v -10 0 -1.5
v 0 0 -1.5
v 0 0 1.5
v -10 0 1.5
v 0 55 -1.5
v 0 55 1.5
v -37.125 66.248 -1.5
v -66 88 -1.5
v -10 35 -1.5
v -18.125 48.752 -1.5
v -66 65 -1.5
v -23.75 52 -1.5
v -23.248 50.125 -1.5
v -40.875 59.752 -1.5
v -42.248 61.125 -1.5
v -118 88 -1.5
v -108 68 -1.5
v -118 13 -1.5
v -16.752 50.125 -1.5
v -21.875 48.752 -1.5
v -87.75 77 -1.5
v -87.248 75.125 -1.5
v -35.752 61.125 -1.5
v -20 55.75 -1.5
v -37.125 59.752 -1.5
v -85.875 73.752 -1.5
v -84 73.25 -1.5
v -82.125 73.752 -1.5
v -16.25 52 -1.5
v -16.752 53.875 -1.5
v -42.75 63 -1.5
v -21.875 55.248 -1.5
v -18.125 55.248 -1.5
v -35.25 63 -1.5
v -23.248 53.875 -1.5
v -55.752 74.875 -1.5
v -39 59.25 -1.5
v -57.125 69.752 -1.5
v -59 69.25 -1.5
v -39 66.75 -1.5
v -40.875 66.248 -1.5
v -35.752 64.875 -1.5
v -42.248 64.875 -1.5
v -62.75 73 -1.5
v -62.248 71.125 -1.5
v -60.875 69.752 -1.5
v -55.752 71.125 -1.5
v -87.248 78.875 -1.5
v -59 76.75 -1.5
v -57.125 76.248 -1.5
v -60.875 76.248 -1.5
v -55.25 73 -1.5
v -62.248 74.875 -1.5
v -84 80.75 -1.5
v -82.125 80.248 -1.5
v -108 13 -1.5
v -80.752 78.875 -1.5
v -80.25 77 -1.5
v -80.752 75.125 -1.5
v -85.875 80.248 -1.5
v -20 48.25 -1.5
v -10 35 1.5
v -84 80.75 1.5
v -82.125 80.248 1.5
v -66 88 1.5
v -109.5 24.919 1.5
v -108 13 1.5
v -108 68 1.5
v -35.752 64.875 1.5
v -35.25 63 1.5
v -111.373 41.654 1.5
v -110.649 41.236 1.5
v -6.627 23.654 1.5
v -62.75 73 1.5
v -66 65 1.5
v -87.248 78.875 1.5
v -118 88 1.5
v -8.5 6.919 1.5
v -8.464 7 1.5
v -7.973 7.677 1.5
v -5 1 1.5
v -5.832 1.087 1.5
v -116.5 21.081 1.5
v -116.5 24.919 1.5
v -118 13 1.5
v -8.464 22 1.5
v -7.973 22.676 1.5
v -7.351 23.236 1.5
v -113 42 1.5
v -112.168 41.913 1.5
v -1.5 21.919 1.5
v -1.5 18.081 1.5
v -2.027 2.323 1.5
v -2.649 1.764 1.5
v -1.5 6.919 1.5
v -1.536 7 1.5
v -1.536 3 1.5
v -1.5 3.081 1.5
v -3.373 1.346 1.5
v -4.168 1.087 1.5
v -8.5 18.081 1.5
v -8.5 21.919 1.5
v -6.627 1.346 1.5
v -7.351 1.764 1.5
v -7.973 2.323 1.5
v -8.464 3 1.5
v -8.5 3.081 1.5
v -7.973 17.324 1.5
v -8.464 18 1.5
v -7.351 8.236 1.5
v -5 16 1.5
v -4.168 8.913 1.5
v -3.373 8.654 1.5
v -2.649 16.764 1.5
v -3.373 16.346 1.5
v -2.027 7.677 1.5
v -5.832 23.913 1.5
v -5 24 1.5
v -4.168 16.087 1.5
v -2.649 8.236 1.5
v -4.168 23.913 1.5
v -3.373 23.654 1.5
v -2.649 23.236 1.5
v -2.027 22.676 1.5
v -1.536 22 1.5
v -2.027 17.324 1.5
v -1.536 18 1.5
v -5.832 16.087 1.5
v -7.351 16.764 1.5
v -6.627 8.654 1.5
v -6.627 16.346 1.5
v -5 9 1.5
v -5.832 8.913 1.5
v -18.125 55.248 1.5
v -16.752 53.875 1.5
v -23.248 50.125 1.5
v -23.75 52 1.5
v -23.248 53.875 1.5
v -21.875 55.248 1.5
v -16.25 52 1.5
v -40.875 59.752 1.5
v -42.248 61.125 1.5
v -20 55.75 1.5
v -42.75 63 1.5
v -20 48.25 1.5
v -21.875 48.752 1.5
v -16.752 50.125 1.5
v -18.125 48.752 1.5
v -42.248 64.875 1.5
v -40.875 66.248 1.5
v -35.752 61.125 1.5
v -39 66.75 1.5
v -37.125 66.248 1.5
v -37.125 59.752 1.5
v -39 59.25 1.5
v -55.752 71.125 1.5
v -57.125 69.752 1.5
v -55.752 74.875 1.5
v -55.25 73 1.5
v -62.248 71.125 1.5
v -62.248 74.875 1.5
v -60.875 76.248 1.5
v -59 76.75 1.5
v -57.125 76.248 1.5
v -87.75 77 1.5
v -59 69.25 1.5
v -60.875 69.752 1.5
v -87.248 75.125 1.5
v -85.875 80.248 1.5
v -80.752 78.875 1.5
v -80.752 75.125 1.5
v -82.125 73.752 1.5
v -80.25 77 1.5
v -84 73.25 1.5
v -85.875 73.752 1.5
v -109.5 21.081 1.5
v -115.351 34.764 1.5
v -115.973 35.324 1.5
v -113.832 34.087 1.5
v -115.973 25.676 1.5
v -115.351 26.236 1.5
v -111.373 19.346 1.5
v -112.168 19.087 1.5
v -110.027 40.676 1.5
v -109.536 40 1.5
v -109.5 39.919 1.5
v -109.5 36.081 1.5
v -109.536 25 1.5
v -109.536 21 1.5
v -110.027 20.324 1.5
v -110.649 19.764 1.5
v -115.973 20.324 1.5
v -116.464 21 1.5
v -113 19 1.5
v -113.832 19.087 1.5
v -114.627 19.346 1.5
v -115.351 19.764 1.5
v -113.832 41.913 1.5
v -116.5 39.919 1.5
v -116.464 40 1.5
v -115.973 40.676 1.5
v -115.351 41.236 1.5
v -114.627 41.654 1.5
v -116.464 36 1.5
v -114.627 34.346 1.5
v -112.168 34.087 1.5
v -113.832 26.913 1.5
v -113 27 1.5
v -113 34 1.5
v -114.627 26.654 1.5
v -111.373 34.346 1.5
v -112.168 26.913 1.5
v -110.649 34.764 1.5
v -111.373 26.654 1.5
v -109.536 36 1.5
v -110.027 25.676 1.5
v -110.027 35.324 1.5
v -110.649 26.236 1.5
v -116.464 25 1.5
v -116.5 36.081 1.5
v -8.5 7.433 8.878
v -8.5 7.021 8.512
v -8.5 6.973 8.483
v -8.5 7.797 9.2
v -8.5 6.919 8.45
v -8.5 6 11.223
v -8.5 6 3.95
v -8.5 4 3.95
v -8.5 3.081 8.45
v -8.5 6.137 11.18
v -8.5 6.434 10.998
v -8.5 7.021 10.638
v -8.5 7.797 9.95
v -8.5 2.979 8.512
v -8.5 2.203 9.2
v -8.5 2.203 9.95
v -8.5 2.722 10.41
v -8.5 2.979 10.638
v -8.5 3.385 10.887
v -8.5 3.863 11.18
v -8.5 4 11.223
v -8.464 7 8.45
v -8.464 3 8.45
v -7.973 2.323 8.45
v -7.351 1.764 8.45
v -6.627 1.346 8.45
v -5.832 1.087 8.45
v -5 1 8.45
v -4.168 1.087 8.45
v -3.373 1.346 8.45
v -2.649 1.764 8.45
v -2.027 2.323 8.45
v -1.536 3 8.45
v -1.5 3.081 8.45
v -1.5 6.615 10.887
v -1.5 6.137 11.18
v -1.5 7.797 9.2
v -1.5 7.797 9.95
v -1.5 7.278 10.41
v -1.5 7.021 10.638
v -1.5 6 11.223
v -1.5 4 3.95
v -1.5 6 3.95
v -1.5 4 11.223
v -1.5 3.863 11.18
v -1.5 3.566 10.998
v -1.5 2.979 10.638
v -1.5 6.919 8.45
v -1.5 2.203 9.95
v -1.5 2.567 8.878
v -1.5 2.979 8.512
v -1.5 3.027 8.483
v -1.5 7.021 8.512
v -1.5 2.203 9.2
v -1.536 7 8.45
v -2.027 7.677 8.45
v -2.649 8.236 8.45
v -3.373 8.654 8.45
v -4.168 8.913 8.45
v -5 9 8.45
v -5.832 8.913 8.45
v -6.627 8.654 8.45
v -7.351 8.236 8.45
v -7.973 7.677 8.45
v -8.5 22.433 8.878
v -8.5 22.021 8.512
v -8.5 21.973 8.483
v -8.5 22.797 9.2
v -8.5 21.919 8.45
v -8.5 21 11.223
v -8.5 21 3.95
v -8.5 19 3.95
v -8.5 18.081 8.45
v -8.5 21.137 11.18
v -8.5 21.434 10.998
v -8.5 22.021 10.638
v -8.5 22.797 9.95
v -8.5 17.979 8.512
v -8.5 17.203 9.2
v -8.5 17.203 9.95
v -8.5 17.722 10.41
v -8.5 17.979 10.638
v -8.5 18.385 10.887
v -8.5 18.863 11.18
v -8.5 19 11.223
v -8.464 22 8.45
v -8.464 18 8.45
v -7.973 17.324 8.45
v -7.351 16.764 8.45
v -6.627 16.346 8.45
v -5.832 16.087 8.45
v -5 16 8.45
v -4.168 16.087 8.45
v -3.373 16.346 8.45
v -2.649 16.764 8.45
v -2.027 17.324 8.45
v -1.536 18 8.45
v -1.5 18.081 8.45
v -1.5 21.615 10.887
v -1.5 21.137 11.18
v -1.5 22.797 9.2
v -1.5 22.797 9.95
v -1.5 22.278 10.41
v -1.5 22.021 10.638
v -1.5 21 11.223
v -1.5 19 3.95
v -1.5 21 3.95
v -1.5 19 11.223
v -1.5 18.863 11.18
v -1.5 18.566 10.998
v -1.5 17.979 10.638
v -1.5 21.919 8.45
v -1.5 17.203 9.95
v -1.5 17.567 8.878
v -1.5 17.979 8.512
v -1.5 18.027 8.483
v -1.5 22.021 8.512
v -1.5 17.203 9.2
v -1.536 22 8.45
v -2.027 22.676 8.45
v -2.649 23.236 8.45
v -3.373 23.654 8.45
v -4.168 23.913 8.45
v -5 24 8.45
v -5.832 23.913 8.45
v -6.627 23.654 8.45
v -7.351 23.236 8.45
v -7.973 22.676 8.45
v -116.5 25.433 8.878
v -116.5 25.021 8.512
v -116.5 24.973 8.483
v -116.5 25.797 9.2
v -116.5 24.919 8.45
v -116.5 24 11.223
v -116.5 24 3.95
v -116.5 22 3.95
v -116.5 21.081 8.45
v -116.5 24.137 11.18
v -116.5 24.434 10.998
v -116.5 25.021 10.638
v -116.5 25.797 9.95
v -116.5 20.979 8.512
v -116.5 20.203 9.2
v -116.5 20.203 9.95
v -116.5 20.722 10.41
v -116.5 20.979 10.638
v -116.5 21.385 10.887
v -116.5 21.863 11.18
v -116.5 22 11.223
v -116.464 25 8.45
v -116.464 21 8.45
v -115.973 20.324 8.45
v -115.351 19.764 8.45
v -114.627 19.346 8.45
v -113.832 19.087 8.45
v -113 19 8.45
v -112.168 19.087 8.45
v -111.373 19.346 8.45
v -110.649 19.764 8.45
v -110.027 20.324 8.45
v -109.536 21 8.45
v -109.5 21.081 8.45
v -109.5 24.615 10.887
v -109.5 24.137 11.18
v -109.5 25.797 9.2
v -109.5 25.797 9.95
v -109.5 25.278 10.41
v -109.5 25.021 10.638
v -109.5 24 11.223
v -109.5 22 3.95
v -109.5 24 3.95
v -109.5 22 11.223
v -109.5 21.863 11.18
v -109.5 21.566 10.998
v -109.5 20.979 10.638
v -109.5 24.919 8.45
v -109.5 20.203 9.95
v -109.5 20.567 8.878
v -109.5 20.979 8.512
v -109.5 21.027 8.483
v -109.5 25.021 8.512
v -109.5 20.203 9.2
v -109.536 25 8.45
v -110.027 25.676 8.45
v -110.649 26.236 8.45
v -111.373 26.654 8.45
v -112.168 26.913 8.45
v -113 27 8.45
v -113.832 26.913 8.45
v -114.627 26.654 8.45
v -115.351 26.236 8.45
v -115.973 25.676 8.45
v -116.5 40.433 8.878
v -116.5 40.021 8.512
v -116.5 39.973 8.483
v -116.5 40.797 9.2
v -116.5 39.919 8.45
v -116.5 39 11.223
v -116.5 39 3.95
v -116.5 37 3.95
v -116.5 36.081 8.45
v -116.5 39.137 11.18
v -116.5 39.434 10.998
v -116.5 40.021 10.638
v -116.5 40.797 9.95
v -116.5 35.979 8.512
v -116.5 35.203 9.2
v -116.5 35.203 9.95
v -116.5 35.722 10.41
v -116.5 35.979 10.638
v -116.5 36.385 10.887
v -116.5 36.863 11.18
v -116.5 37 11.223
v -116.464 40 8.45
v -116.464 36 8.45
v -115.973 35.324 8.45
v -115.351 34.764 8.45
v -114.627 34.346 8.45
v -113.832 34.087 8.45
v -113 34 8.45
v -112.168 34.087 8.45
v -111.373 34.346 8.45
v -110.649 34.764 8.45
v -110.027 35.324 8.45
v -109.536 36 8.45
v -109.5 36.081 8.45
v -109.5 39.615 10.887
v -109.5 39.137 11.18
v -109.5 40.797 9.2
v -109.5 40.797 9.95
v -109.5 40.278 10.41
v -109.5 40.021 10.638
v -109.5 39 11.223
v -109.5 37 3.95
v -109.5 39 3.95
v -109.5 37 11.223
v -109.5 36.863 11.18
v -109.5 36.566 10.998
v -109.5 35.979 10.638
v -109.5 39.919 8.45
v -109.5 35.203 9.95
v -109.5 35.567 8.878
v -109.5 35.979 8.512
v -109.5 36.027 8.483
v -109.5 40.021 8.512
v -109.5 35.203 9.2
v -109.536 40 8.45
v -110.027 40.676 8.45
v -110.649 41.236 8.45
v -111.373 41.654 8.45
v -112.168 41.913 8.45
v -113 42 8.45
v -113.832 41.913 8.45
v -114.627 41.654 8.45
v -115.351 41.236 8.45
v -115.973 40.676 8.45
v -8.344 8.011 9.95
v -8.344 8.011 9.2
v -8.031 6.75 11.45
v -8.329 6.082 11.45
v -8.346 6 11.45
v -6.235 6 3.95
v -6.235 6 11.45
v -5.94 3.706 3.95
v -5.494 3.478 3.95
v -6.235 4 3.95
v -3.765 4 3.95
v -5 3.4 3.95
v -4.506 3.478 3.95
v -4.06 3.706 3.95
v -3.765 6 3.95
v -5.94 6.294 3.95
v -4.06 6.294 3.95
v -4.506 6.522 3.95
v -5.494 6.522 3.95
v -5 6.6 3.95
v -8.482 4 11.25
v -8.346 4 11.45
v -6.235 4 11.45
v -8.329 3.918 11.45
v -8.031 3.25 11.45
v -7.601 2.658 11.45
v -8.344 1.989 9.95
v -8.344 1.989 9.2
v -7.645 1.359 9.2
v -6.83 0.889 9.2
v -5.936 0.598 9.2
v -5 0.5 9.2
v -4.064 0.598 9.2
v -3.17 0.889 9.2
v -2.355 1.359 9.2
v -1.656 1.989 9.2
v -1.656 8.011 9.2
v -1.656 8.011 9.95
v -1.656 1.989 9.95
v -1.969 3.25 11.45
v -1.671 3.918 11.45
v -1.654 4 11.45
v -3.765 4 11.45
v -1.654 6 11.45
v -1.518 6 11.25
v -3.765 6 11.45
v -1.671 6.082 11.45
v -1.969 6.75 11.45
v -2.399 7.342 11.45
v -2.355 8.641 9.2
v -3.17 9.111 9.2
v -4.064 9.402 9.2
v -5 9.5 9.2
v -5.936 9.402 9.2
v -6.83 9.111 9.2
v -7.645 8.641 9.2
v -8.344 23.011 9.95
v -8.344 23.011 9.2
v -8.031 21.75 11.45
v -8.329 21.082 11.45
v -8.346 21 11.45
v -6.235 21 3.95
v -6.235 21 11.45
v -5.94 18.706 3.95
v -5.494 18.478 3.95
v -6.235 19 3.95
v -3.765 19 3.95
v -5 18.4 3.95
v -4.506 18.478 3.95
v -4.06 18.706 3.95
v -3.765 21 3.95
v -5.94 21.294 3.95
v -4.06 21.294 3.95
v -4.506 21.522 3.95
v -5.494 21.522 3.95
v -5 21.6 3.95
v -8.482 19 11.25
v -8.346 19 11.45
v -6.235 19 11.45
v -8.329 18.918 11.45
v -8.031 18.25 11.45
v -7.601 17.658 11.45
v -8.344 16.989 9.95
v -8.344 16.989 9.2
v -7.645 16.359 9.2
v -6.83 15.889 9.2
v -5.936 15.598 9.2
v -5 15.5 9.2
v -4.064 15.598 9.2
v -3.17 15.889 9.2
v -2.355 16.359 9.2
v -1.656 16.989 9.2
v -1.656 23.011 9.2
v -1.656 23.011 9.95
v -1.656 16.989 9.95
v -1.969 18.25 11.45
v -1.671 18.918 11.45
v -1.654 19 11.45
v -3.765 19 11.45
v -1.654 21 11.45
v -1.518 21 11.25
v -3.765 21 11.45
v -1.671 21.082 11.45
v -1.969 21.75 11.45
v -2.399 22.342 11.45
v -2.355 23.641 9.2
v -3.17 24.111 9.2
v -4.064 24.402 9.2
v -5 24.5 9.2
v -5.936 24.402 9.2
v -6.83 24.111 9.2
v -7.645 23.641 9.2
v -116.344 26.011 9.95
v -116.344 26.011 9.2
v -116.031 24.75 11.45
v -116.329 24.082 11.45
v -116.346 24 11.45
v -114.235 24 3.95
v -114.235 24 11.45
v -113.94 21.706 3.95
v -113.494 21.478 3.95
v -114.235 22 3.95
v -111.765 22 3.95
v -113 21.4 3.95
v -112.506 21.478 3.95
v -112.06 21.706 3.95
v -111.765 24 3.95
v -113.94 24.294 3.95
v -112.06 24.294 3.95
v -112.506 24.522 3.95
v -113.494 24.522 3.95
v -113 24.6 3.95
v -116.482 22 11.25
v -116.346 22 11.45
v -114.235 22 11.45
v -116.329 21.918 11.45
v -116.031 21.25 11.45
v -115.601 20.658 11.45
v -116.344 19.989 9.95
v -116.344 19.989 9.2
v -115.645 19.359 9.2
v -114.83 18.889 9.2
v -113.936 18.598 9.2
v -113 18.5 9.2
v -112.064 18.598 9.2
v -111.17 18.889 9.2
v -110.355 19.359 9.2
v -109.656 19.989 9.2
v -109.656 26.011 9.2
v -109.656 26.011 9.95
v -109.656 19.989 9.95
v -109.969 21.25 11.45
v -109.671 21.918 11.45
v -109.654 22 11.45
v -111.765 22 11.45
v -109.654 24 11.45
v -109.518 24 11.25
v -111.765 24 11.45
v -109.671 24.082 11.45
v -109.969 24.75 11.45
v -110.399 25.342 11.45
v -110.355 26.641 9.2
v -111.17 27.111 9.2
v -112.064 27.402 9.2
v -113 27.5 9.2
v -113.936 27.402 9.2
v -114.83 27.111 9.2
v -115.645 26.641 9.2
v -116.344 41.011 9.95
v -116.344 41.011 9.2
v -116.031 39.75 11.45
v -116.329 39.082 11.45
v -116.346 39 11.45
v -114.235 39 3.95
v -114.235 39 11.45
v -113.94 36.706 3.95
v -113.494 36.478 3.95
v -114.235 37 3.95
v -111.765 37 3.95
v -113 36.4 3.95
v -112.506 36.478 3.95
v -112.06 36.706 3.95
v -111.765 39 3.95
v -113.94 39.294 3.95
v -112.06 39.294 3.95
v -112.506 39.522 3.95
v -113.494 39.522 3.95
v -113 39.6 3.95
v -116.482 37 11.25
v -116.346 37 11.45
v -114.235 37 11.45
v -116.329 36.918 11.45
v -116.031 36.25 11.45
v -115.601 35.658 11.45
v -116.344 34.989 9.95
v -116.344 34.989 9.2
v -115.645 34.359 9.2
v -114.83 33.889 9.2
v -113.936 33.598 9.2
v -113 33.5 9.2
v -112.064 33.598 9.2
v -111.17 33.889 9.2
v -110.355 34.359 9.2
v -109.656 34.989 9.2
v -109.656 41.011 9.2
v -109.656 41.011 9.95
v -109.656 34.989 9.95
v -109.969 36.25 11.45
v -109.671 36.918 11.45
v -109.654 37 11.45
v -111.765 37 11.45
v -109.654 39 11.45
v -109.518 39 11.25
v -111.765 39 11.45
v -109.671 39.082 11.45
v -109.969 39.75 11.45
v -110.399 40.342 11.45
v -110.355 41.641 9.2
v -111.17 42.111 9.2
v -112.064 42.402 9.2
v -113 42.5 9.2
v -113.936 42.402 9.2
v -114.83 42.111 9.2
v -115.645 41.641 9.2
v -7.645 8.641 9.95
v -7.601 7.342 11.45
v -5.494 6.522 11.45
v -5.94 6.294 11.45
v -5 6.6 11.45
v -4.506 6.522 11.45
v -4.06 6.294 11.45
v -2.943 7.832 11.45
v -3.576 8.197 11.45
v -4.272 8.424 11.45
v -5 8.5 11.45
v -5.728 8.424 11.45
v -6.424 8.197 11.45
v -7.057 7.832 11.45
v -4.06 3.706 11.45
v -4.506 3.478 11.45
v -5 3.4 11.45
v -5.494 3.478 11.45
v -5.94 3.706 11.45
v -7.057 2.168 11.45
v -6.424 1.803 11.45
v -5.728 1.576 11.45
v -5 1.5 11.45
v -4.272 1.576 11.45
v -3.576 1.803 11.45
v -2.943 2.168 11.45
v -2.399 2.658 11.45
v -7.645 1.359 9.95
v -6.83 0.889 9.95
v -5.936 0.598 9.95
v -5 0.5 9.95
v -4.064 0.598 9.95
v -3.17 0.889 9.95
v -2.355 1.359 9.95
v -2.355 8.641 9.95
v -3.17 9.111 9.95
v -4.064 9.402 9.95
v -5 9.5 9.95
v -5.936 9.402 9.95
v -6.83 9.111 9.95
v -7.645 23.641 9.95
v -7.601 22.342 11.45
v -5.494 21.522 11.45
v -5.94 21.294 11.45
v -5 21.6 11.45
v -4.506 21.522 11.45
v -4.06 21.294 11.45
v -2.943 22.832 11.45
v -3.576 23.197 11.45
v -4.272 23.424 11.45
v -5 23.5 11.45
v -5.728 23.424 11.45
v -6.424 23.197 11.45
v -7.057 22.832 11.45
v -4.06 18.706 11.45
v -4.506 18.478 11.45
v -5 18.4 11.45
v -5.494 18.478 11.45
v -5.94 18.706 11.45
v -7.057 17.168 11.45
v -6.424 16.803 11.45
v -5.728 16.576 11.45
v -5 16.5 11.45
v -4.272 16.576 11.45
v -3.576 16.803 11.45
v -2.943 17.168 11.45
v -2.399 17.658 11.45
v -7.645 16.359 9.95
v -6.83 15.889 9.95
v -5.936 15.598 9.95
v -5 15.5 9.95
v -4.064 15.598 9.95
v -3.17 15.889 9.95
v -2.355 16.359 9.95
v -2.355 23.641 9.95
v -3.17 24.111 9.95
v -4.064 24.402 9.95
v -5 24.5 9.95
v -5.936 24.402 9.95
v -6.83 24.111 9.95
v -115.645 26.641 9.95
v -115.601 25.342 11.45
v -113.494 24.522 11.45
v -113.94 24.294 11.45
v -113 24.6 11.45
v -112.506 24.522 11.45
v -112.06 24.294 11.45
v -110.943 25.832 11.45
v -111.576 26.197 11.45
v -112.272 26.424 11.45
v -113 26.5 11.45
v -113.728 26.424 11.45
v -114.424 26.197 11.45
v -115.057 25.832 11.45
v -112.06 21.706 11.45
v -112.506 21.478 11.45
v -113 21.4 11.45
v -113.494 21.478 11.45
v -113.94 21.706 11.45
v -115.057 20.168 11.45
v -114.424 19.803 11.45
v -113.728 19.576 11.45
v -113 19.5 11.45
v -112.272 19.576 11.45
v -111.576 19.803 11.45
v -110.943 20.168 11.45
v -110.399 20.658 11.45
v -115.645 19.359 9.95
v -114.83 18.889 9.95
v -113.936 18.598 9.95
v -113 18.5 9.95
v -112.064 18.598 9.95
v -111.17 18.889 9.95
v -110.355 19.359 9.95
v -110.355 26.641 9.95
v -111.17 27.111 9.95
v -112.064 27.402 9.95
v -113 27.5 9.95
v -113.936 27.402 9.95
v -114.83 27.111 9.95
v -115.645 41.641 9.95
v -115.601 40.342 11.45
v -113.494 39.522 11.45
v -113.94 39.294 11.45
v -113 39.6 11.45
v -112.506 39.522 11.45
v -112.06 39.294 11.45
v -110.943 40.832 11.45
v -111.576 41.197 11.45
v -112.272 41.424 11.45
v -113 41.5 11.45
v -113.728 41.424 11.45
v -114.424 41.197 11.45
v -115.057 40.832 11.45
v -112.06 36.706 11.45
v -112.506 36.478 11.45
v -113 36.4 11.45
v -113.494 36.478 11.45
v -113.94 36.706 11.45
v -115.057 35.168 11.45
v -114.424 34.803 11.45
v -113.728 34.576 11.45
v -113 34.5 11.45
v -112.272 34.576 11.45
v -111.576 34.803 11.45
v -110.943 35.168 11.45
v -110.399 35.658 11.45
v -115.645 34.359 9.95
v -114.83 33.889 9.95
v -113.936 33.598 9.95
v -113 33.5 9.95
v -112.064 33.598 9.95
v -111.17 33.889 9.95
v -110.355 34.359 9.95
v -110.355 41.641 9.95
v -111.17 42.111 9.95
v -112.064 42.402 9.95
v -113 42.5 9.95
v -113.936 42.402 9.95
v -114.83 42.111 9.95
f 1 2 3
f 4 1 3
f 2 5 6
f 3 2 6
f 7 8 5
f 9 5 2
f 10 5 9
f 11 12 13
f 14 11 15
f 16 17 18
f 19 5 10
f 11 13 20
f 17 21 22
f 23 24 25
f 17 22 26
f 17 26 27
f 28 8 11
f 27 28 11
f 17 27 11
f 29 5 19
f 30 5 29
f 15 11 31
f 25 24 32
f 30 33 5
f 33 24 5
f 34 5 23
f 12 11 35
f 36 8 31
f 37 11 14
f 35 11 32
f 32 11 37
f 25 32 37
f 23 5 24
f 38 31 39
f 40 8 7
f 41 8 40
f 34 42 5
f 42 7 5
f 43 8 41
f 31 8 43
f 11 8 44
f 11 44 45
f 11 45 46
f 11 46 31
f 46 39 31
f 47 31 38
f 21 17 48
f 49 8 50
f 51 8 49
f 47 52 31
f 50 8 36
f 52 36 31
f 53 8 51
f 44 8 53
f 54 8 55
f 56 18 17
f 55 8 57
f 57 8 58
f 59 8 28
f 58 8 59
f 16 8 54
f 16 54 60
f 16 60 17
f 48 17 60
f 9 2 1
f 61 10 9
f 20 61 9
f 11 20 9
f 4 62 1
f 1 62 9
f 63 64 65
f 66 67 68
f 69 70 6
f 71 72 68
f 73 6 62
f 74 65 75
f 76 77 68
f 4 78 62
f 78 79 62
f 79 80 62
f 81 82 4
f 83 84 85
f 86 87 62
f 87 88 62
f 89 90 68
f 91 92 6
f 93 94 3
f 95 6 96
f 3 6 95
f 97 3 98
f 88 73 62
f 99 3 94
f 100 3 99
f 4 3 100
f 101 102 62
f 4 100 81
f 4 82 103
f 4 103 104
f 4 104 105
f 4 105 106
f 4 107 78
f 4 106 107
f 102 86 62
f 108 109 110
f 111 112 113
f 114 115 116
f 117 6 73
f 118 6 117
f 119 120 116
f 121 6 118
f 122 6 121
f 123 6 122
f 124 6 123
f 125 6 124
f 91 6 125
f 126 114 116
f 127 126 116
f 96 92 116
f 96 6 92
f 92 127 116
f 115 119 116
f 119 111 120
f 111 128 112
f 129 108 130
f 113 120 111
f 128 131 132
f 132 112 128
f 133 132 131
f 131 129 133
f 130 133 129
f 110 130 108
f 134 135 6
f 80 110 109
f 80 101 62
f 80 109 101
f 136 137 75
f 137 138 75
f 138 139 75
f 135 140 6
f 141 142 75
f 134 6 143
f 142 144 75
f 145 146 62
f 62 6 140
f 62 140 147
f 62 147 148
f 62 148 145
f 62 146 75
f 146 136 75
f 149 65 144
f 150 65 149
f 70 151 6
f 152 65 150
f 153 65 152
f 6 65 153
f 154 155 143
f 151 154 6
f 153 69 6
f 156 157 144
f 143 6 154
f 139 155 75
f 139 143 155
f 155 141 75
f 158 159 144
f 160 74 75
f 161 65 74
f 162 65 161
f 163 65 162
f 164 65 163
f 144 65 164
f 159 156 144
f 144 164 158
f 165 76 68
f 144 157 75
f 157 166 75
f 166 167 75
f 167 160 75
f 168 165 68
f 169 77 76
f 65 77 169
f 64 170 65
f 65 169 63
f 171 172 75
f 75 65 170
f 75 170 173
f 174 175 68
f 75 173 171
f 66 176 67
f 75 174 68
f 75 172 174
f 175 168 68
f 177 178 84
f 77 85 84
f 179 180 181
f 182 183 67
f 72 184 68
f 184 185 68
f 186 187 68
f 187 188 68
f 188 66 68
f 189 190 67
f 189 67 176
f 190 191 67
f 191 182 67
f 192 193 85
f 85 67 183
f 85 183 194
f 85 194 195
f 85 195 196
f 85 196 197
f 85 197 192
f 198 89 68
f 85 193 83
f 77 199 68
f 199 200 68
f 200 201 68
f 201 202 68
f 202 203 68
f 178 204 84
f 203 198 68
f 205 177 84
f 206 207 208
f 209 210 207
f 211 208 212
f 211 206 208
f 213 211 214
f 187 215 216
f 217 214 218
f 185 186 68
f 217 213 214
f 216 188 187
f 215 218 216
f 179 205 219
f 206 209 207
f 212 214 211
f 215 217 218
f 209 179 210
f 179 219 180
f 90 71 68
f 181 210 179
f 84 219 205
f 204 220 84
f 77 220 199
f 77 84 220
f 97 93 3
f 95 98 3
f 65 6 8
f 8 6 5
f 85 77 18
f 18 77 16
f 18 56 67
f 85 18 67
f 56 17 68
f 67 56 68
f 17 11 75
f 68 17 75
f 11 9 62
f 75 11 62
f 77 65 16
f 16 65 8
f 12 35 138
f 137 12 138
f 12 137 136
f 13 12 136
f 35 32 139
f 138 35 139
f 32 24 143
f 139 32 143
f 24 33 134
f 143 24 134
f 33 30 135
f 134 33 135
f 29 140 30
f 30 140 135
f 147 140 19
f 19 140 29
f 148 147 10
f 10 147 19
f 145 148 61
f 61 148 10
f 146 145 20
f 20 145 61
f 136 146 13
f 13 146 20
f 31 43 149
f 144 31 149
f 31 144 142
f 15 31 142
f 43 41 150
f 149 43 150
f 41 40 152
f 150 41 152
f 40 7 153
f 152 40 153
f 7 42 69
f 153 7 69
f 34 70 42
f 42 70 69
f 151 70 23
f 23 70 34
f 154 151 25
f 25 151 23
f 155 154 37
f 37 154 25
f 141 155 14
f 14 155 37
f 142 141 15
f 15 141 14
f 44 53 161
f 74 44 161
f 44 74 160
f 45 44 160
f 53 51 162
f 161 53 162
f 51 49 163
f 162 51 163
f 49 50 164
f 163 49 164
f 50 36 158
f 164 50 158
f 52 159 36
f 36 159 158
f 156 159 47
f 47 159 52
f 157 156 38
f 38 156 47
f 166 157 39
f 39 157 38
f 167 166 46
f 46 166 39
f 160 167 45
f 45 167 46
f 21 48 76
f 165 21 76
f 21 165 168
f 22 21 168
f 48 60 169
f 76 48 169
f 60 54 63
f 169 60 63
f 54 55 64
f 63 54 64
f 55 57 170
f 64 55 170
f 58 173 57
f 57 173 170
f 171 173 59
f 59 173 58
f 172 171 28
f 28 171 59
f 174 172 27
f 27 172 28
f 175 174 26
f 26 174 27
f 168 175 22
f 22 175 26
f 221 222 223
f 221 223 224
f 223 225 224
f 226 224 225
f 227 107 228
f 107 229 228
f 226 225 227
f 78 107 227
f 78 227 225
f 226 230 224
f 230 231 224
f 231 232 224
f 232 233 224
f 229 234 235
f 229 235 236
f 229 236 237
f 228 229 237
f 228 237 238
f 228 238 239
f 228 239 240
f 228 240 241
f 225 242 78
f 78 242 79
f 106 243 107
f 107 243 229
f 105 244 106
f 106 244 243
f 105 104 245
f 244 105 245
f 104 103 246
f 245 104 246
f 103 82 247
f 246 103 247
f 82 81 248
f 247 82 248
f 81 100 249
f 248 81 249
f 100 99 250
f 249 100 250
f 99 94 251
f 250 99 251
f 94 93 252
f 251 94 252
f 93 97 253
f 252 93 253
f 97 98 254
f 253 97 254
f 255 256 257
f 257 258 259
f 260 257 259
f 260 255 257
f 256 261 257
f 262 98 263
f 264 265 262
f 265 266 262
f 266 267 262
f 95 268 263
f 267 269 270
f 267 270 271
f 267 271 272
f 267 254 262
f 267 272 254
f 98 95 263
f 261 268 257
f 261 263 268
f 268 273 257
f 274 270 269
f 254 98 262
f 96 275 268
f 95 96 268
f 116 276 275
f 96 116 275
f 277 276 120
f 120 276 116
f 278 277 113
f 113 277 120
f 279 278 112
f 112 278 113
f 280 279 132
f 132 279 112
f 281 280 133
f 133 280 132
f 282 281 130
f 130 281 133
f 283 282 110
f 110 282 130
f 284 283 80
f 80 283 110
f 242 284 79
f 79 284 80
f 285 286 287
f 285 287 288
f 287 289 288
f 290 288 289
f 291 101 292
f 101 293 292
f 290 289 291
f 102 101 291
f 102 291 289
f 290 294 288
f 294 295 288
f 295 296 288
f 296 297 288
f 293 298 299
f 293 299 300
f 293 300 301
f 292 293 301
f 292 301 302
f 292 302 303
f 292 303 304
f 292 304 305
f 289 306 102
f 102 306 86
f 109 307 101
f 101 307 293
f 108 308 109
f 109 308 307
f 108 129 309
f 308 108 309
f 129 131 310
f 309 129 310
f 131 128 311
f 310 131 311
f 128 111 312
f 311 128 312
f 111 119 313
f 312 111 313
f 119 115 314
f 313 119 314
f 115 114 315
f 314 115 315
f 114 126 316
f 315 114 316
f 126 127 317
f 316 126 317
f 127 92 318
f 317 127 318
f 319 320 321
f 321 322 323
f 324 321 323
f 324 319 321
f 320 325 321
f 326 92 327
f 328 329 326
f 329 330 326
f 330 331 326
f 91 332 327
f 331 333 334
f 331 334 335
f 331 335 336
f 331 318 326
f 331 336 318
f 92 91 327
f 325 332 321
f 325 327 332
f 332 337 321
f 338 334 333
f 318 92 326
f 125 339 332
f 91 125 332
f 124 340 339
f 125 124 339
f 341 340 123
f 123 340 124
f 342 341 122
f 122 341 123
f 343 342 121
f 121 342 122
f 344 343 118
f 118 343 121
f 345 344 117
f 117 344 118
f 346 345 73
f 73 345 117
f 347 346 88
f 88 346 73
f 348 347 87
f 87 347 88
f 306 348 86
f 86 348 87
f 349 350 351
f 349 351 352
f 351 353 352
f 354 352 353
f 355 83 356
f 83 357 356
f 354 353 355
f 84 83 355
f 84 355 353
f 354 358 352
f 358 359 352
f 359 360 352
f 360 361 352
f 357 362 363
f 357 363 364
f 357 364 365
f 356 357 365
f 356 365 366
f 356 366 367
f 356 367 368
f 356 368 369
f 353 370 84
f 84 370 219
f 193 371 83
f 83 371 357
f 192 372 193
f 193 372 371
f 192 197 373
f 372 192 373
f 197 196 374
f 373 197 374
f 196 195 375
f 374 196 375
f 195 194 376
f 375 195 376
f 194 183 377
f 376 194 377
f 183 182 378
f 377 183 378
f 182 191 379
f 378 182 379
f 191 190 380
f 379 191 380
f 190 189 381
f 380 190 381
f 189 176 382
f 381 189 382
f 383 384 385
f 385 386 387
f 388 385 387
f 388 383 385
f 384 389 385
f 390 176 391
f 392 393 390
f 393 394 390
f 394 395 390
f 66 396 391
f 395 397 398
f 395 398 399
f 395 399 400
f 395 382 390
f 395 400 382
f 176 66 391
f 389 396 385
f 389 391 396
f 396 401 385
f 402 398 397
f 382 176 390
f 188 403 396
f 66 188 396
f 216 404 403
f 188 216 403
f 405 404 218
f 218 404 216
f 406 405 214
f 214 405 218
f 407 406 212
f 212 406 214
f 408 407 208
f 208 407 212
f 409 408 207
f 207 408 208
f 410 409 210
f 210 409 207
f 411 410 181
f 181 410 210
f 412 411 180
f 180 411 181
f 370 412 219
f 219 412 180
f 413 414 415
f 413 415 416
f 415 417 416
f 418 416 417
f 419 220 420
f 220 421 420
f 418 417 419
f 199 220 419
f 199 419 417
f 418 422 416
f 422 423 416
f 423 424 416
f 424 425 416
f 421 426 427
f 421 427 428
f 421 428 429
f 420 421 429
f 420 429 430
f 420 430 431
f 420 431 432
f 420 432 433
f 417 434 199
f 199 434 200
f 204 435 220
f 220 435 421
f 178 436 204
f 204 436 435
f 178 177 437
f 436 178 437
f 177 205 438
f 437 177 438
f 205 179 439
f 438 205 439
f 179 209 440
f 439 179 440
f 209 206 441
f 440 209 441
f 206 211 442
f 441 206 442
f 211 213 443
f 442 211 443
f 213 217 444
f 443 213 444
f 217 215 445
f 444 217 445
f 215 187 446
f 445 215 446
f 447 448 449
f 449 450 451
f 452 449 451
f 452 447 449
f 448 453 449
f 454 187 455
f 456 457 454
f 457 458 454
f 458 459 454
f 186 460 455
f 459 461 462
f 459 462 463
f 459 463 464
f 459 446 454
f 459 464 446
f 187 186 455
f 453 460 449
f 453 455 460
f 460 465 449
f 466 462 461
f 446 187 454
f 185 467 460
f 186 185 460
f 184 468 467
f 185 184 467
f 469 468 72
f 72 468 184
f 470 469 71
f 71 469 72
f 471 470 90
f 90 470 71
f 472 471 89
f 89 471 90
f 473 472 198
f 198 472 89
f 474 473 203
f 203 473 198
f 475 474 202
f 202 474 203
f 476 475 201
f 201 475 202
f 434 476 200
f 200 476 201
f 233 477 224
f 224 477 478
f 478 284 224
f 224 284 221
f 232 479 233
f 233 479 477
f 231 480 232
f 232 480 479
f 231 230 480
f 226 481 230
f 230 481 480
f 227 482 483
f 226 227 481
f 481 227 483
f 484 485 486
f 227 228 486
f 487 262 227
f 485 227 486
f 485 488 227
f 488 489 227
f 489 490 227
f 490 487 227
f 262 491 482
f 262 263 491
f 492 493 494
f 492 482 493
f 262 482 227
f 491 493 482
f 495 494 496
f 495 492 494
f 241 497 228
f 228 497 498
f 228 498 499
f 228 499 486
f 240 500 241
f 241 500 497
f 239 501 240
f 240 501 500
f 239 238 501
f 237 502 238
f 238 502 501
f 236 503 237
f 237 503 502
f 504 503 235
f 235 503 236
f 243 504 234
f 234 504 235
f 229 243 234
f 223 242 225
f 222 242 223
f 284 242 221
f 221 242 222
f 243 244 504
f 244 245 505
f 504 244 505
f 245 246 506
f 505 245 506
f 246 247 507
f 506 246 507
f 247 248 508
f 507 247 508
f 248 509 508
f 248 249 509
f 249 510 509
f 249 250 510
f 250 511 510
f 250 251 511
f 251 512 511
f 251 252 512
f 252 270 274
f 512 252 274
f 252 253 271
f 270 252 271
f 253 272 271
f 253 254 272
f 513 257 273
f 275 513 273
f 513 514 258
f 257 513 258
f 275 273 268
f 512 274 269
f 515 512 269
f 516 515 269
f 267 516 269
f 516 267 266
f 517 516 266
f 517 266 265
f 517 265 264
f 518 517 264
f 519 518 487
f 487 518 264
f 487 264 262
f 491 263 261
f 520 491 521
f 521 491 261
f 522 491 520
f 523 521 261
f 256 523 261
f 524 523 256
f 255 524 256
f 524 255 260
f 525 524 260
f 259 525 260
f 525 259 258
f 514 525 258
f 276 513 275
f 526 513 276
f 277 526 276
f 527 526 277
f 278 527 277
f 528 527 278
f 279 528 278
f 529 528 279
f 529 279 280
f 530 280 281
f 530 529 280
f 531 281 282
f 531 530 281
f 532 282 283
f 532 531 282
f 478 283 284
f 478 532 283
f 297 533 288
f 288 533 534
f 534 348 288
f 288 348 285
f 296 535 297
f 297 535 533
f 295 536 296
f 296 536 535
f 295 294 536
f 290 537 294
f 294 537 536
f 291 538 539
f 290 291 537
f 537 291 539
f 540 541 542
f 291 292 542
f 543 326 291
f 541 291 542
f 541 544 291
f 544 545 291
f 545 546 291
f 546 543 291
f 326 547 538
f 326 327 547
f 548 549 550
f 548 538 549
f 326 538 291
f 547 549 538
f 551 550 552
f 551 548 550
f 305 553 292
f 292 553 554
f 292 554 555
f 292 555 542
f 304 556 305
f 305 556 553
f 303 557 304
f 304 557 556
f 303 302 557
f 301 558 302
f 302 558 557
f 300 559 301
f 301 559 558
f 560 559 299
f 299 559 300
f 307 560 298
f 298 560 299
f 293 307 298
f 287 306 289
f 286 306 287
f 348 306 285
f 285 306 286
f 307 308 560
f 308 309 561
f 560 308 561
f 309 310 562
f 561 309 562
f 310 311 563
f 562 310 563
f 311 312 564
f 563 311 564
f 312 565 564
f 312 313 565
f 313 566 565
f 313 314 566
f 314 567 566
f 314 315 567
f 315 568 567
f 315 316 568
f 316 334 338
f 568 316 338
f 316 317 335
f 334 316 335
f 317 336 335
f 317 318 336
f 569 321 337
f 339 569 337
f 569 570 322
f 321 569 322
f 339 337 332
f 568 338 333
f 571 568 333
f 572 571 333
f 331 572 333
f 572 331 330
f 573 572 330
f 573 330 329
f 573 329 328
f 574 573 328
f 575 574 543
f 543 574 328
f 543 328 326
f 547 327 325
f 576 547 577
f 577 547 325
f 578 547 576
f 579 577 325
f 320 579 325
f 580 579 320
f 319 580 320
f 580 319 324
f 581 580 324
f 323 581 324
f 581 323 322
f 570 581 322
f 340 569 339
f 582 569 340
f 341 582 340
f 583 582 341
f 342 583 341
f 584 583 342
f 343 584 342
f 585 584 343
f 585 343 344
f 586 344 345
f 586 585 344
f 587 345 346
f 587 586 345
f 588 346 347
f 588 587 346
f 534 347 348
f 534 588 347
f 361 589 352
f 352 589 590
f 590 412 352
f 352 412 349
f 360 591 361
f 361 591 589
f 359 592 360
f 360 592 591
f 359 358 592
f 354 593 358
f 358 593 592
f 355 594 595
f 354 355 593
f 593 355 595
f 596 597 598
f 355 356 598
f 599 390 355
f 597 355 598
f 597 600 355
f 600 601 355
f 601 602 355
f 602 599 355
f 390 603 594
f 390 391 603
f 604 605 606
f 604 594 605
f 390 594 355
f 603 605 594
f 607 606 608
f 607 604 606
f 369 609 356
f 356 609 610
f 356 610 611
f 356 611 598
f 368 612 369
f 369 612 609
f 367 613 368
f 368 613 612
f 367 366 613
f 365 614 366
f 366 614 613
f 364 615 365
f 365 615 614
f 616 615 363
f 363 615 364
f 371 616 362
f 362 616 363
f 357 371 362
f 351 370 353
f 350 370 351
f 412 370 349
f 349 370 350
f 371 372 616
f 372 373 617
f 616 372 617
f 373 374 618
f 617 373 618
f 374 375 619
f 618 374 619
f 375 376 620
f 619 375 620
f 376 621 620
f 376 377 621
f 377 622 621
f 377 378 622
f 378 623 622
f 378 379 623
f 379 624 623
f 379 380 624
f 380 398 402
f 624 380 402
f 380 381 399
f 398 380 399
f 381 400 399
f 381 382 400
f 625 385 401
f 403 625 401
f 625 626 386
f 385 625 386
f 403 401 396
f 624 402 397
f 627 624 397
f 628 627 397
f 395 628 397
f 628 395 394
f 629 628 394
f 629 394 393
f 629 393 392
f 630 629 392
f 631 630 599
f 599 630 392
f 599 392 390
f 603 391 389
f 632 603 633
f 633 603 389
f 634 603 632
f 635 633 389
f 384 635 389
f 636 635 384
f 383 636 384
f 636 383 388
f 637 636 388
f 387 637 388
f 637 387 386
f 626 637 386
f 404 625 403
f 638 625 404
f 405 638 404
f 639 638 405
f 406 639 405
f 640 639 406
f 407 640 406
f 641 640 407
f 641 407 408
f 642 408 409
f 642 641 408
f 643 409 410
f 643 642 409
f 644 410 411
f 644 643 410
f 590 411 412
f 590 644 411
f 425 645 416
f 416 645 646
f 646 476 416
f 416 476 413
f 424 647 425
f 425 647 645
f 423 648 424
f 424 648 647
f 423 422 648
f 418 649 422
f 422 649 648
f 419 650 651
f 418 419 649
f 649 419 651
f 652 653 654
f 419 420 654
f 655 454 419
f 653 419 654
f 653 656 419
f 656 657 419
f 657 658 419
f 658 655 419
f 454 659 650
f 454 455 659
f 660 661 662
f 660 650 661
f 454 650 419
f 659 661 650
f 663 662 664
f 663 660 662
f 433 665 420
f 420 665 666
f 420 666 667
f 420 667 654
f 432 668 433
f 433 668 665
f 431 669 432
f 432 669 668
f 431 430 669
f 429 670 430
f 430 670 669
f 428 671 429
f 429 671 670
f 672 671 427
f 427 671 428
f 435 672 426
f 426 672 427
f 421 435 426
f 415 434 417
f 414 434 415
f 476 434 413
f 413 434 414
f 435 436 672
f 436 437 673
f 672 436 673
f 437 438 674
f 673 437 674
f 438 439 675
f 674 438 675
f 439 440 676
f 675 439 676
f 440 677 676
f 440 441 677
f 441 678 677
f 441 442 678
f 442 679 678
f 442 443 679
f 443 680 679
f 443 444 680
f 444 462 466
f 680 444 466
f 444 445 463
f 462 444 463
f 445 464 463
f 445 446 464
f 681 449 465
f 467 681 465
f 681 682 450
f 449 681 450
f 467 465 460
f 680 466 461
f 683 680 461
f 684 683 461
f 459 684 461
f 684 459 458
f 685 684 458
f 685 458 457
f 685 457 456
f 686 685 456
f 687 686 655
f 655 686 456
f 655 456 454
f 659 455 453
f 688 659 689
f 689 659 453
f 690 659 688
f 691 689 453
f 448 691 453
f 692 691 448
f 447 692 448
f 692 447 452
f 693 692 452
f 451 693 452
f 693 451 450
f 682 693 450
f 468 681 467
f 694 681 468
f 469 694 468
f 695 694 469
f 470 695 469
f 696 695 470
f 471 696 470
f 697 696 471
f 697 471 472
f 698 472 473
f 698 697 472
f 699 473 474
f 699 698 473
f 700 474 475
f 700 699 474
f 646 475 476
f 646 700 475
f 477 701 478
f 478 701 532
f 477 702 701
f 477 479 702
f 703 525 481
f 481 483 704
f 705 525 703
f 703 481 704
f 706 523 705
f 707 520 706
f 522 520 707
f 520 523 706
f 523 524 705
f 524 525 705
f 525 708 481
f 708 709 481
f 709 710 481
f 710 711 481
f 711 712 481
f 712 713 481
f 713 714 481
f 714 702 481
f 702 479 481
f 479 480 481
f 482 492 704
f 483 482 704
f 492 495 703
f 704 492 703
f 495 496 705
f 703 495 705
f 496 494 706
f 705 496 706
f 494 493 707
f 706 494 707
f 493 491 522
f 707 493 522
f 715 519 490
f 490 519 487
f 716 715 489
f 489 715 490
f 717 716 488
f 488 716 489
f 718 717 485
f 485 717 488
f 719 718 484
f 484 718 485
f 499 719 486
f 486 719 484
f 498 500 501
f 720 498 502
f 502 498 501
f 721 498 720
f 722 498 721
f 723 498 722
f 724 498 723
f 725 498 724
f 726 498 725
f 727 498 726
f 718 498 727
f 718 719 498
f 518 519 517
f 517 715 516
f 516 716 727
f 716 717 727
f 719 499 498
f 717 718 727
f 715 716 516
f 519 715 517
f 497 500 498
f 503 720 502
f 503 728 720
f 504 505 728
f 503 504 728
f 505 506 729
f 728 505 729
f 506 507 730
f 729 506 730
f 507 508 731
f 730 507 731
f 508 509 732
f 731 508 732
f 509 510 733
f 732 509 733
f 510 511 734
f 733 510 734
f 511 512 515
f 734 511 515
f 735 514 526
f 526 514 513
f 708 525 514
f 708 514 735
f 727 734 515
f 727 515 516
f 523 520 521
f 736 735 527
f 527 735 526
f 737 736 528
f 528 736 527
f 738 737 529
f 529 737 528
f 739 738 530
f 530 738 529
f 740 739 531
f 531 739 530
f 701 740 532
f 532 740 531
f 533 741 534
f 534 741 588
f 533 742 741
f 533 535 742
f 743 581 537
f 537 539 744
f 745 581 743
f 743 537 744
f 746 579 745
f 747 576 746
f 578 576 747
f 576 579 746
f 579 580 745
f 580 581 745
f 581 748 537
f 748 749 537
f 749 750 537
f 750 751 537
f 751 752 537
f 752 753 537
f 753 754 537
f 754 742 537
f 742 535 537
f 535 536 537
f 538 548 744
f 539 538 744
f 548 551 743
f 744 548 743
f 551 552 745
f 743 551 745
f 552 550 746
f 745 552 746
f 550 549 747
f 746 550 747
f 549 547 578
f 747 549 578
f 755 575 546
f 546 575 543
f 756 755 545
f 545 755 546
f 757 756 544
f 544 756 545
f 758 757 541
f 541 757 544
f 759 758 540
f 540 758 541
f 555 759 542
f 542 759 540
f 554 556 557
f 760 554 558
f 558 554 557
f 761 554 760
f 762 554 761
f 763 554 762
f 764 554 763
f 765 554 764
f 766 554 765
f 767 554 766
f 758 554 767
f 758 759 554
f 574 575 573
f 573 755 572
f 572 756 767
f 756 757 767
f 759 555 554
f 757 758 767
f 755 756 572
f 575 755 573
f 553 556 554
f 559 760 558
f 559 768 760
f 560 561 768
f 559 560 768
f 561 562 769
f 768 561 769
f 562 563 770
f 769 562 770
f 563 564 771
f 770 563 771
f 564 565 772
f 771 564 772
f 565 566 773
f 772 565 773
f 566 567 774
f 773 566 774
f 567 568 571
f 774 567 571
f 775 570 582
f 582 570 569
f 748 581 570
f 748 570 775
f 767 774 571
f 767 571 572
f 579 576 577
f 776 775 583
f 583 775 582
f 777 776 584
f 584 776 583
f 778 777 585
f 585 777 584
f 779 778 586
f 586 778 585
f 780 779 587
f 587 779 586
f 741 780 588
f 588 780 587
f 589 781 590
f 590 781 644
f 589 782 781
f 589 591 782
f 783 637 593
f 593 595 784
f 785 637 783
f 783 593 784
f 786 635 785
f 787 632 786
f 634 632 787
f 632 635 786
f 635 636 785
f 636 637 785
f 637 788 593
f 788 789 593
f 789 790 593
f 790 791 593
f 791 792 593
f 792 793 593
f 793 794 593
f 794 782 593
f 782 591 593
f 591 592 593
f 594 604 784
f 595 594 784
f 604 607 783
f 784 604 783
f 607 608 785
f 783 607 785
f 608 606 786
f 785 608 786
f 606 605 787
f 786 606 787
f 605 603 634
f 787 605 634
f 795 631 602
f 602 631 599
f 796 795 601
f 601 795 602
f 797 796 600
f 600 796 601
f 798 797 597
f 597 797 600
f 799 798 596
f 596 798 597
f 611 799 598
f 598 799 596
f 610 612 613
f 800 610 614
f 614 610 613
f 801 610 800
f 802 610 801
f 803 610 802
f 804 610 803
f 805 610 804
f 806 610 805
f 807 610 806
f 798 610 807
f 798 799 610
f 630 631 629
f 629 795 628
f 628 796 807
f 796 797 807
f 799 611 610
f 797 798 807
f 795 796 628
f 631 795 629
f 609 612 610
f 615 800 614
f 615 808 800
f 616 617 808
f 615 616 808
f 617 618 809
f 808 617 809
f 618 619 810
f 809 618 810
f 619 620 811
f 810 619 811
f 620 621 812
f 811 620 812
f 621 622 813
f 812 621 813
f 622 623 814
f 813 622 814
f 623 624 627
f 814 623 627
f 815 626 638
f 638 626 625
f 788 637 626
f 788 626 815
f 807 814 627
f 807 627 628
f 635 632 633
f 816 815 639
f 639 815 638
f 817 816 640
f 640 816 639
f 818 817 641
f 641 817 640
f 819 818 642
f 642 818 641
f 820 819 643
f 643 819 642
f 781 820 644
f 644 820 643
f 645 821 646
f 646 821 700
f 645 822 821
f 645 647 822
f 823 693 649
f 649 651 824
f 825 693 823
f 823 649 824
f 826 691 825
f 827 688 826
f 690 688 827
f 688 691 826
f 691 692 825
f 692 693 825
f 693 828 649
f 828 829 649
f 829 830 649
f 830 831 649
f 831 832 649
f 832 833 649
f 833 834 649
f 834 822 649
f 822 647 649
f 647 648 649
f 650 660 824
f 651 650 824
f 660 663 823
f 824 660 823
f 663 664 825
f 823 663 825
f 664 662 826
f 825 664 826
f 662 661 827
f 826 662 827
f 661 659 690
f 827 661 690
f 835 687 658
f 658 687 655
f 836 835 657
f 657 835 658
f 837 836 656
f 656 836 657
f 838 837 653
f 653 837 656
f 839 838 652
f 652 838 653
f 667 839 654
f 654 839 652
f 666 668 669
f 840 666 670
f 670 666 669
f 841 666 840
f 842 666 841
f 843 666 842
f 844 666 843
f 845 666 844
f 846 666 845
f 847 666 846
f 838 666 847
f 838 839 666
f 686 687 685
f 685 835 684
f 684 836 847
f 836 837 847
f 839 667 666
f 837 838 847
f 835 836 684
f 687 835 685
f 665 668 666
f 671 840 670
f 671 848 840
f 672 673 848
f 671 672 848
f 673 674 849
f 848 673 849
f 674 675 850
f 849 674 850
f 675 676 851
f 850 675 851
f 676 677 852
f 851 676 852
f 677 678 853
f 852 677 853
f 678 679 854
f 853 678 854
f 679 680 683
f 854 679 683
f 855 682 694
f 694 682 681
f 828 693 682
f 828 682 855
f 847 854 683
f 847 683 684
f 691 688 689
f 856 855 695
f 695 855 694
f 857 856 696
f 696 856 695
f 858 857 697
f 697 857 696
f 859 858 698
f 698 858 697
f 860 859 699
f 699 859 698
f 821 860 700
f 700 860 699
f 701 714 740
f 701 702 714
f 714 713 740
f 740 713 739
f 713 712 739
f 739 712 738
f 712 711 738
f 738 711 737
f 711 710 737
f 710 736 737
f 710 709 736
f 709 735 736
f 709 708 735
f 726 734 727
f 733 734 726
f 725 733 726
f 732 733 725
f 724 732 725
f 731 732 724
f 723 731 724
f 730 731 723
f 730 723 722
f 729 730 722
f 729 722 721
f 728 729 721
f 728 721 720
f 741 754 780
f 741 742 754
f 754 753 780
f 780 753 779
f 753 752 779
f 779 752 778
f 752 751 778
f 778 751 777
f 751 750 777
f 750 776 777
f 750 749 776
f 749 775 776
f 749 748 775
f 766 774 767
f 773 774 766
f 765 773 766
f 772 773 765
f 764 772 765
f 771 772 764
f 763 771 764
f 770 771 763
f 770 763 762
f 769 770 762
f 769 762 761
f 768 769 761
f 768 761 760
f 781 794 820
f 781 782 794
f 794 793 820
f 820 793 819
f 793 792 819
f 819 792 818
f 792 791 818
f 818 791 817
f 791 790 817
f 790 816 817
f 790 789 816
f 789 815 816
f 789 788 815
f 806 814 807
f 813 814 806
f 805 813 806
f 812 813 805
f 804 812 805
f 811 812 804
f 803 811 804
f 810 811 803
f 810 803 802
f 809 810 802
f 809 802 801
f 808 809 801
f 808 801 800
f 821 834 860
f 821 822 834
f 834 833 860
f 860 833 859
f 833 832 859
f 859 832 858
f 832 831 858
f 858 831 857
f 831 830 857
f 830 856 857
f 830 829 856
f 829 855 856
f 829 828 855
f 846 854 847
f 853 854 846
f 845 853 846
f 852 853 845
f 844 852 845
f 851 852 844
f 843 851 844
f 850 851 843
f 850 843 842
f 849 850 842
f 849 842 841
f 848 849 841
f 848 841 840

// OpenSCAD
// file: pins.scad
// Pin Connectors V2
// Tony Buser <tbuser@gmail.com>

// pinhole(h=5);

// test();
// pintack(h=10);
// pinpeg(h=20);

module test() {
  tolerance = 0.3;
  
  translate([-12, 12, 0]) pinpeg(h=20);
  translate([12, 12, 0]) pintack(h=10);
  
  difference() {
    union() {
      translate([0, -12, 2.5]) cube(size = [59, 20, 5], center = true);
      translate([24, -12, 7.5]) cube(size = [12, 20, 15], center = true);
    }
    translate([-24, -12, 0]) pinhole(h=5, t=tolerance);
    translate([-12, -12, 0]) pinhole(h=5, t=tolerance, tight=false);
    translate([0, -12, 0]) pinhole(h=10, t=tolerance);
    translate([12, -12, 0]) pinhole(h=10, t=tolerance, tight=false);
    translate([24, -12, 15]) rotate([0, 180, 0]) pinhole(h=10, t=tolerance);
  }
}

module pinhole(h=10, r=4, lh=3, lt=1, t=0.3, tight=true) {
  union() {
    pin_solid(h, r+(t/2), lh, lt);
    cylinder(h=h+0.2, r=r);
    // widen the cylinder slightly
    // cylinder(h=h+0.2, r=r+(t-0.2/2));
    if (tight == false) {
      cylinder(h=h+0.2, r=r+(t/2)+0.25);
    }
    // widen the entrance hole to make insertion easier
    translate([0, 0, -0.1]) cylinder(h=lh/3, r2=r, r1=r+(t/2)+(lt/2));
  }
}

module pin(h=10, r=4, lh=3, lt=1, side=false) {
  if (side) {
    pin_horizontal(h, r, lh, lt);
  } else {
    pin_vertical(h, r, lh, lt);
  }
}

module pintack(h=10, r=4, lh=3, lt=1, bh=3, br=8.75) {
  union() {
    cylinder(h=bh, r=br);
    translate([0, 0, bh]) pin(h, r, lh, lt);
  }
}

module pinpeg(h=20, r=4, lh=3, lt=1) {
  union() {
    translate([0, -h/4+0.05, 0]) pin(h/2+0.1, r, lh, lt, side=true);
    translate([0, h/4-0.05, 0]) rotate([0, 0, 180]) pin(h/2+0.1, r, lh, lt, side=true);
  }
}

module pin_vertical(h=10, r=4, lh=3, lt=1) {
  difference() {
    pin_solid(h, r, lh, lt);
    
    // center cut
    translate([-r*0.5/2, -(r*2+lt*2)/2, h/4]) cube([r*0.5, r*2+lt*2, h]);
    translate([0, 0, h/4]) cylinder(h=h+lh, r=r/2.5, $fn=20);
    // center curve
    // translate([0, 0, h/4]) rotate([90, 0, 0]) cylinder(h=r*2, r=r*0.5/2, center=true, $fn=20);
  
    // side cuts
    translate([-r*2, -lt-r*1.125, -1]) cube([r*4, lt*2, h+2]);
    translate([-r*2, -lt+r*1.125, -1]) cube([r*4, lt*2, h+2]);
  }
}

// call pin with side=true instead of this
module pin_horizontal(h=10, r=4, lh=3, lt=1) {
  translate([0, h/2, r*1.125-lt]) rotate([90, 0, 0]) pin_vertical(h, r, lh, lt);
}

// this is mainly to make the pinhole module easier
module pin_solid(h=10, r=4, lh=3, lt=1) {
  union() {
    cylinder(h=h-lh, r=r, $fn=30);
    translate([0, 0, h-lh]) cylinder(h=lh*0.25, r1=r, r2=r+(lt/2), $fn=30);
    translate([0, 0, h-lh+lh*0.25]) cylinder(h=lh*0.25, r=r+(lt/2), $fn=30);    
    translate([0, 0, h-lh+lh*0.50]) cylinder(h=lh*0.50, r1=r+(lt/2), r2=r-(lt/2), $fn=30);    
  }
}

module two_pinholes() {
 pinhole();
 translate(v=[15,0,0]) pinhole();
}
// main file
include <pins.scad>

module two_pins() {

 pin();
 translate(v=[15,0,0]) pin();
}

module fingerpad() {

 difference() {
  linear_extrude(height = 3, center = true, convexity = 10)
  polygon([[0,0],[10,0],[10,35],[66,65],[108,68],[108,13],[118,13],[118,88],[66,88],[0,55]]); 

  translate(v=[20,52,-2.5]) cylinder(h=5,r=3.75);
  translate(v=[39,63,-2.5]) cylinder(h=5,r=3.75);
  translate(v=[59,73,-2.5]) cylinder(h=5,r=3.75);
  translate(v=[84,77,-2.5]) cylinder(h=5,r=3.75);

 }

 rotate(a=[0,0,90]) translate(v=[5,-5,1.45]) two_pins();  
 rotate(a=[0,0,90]) translate(v=[23,-113,1.45]) two_pins();  
}

mirror([1, 0, 0 ]) fingerpad();
